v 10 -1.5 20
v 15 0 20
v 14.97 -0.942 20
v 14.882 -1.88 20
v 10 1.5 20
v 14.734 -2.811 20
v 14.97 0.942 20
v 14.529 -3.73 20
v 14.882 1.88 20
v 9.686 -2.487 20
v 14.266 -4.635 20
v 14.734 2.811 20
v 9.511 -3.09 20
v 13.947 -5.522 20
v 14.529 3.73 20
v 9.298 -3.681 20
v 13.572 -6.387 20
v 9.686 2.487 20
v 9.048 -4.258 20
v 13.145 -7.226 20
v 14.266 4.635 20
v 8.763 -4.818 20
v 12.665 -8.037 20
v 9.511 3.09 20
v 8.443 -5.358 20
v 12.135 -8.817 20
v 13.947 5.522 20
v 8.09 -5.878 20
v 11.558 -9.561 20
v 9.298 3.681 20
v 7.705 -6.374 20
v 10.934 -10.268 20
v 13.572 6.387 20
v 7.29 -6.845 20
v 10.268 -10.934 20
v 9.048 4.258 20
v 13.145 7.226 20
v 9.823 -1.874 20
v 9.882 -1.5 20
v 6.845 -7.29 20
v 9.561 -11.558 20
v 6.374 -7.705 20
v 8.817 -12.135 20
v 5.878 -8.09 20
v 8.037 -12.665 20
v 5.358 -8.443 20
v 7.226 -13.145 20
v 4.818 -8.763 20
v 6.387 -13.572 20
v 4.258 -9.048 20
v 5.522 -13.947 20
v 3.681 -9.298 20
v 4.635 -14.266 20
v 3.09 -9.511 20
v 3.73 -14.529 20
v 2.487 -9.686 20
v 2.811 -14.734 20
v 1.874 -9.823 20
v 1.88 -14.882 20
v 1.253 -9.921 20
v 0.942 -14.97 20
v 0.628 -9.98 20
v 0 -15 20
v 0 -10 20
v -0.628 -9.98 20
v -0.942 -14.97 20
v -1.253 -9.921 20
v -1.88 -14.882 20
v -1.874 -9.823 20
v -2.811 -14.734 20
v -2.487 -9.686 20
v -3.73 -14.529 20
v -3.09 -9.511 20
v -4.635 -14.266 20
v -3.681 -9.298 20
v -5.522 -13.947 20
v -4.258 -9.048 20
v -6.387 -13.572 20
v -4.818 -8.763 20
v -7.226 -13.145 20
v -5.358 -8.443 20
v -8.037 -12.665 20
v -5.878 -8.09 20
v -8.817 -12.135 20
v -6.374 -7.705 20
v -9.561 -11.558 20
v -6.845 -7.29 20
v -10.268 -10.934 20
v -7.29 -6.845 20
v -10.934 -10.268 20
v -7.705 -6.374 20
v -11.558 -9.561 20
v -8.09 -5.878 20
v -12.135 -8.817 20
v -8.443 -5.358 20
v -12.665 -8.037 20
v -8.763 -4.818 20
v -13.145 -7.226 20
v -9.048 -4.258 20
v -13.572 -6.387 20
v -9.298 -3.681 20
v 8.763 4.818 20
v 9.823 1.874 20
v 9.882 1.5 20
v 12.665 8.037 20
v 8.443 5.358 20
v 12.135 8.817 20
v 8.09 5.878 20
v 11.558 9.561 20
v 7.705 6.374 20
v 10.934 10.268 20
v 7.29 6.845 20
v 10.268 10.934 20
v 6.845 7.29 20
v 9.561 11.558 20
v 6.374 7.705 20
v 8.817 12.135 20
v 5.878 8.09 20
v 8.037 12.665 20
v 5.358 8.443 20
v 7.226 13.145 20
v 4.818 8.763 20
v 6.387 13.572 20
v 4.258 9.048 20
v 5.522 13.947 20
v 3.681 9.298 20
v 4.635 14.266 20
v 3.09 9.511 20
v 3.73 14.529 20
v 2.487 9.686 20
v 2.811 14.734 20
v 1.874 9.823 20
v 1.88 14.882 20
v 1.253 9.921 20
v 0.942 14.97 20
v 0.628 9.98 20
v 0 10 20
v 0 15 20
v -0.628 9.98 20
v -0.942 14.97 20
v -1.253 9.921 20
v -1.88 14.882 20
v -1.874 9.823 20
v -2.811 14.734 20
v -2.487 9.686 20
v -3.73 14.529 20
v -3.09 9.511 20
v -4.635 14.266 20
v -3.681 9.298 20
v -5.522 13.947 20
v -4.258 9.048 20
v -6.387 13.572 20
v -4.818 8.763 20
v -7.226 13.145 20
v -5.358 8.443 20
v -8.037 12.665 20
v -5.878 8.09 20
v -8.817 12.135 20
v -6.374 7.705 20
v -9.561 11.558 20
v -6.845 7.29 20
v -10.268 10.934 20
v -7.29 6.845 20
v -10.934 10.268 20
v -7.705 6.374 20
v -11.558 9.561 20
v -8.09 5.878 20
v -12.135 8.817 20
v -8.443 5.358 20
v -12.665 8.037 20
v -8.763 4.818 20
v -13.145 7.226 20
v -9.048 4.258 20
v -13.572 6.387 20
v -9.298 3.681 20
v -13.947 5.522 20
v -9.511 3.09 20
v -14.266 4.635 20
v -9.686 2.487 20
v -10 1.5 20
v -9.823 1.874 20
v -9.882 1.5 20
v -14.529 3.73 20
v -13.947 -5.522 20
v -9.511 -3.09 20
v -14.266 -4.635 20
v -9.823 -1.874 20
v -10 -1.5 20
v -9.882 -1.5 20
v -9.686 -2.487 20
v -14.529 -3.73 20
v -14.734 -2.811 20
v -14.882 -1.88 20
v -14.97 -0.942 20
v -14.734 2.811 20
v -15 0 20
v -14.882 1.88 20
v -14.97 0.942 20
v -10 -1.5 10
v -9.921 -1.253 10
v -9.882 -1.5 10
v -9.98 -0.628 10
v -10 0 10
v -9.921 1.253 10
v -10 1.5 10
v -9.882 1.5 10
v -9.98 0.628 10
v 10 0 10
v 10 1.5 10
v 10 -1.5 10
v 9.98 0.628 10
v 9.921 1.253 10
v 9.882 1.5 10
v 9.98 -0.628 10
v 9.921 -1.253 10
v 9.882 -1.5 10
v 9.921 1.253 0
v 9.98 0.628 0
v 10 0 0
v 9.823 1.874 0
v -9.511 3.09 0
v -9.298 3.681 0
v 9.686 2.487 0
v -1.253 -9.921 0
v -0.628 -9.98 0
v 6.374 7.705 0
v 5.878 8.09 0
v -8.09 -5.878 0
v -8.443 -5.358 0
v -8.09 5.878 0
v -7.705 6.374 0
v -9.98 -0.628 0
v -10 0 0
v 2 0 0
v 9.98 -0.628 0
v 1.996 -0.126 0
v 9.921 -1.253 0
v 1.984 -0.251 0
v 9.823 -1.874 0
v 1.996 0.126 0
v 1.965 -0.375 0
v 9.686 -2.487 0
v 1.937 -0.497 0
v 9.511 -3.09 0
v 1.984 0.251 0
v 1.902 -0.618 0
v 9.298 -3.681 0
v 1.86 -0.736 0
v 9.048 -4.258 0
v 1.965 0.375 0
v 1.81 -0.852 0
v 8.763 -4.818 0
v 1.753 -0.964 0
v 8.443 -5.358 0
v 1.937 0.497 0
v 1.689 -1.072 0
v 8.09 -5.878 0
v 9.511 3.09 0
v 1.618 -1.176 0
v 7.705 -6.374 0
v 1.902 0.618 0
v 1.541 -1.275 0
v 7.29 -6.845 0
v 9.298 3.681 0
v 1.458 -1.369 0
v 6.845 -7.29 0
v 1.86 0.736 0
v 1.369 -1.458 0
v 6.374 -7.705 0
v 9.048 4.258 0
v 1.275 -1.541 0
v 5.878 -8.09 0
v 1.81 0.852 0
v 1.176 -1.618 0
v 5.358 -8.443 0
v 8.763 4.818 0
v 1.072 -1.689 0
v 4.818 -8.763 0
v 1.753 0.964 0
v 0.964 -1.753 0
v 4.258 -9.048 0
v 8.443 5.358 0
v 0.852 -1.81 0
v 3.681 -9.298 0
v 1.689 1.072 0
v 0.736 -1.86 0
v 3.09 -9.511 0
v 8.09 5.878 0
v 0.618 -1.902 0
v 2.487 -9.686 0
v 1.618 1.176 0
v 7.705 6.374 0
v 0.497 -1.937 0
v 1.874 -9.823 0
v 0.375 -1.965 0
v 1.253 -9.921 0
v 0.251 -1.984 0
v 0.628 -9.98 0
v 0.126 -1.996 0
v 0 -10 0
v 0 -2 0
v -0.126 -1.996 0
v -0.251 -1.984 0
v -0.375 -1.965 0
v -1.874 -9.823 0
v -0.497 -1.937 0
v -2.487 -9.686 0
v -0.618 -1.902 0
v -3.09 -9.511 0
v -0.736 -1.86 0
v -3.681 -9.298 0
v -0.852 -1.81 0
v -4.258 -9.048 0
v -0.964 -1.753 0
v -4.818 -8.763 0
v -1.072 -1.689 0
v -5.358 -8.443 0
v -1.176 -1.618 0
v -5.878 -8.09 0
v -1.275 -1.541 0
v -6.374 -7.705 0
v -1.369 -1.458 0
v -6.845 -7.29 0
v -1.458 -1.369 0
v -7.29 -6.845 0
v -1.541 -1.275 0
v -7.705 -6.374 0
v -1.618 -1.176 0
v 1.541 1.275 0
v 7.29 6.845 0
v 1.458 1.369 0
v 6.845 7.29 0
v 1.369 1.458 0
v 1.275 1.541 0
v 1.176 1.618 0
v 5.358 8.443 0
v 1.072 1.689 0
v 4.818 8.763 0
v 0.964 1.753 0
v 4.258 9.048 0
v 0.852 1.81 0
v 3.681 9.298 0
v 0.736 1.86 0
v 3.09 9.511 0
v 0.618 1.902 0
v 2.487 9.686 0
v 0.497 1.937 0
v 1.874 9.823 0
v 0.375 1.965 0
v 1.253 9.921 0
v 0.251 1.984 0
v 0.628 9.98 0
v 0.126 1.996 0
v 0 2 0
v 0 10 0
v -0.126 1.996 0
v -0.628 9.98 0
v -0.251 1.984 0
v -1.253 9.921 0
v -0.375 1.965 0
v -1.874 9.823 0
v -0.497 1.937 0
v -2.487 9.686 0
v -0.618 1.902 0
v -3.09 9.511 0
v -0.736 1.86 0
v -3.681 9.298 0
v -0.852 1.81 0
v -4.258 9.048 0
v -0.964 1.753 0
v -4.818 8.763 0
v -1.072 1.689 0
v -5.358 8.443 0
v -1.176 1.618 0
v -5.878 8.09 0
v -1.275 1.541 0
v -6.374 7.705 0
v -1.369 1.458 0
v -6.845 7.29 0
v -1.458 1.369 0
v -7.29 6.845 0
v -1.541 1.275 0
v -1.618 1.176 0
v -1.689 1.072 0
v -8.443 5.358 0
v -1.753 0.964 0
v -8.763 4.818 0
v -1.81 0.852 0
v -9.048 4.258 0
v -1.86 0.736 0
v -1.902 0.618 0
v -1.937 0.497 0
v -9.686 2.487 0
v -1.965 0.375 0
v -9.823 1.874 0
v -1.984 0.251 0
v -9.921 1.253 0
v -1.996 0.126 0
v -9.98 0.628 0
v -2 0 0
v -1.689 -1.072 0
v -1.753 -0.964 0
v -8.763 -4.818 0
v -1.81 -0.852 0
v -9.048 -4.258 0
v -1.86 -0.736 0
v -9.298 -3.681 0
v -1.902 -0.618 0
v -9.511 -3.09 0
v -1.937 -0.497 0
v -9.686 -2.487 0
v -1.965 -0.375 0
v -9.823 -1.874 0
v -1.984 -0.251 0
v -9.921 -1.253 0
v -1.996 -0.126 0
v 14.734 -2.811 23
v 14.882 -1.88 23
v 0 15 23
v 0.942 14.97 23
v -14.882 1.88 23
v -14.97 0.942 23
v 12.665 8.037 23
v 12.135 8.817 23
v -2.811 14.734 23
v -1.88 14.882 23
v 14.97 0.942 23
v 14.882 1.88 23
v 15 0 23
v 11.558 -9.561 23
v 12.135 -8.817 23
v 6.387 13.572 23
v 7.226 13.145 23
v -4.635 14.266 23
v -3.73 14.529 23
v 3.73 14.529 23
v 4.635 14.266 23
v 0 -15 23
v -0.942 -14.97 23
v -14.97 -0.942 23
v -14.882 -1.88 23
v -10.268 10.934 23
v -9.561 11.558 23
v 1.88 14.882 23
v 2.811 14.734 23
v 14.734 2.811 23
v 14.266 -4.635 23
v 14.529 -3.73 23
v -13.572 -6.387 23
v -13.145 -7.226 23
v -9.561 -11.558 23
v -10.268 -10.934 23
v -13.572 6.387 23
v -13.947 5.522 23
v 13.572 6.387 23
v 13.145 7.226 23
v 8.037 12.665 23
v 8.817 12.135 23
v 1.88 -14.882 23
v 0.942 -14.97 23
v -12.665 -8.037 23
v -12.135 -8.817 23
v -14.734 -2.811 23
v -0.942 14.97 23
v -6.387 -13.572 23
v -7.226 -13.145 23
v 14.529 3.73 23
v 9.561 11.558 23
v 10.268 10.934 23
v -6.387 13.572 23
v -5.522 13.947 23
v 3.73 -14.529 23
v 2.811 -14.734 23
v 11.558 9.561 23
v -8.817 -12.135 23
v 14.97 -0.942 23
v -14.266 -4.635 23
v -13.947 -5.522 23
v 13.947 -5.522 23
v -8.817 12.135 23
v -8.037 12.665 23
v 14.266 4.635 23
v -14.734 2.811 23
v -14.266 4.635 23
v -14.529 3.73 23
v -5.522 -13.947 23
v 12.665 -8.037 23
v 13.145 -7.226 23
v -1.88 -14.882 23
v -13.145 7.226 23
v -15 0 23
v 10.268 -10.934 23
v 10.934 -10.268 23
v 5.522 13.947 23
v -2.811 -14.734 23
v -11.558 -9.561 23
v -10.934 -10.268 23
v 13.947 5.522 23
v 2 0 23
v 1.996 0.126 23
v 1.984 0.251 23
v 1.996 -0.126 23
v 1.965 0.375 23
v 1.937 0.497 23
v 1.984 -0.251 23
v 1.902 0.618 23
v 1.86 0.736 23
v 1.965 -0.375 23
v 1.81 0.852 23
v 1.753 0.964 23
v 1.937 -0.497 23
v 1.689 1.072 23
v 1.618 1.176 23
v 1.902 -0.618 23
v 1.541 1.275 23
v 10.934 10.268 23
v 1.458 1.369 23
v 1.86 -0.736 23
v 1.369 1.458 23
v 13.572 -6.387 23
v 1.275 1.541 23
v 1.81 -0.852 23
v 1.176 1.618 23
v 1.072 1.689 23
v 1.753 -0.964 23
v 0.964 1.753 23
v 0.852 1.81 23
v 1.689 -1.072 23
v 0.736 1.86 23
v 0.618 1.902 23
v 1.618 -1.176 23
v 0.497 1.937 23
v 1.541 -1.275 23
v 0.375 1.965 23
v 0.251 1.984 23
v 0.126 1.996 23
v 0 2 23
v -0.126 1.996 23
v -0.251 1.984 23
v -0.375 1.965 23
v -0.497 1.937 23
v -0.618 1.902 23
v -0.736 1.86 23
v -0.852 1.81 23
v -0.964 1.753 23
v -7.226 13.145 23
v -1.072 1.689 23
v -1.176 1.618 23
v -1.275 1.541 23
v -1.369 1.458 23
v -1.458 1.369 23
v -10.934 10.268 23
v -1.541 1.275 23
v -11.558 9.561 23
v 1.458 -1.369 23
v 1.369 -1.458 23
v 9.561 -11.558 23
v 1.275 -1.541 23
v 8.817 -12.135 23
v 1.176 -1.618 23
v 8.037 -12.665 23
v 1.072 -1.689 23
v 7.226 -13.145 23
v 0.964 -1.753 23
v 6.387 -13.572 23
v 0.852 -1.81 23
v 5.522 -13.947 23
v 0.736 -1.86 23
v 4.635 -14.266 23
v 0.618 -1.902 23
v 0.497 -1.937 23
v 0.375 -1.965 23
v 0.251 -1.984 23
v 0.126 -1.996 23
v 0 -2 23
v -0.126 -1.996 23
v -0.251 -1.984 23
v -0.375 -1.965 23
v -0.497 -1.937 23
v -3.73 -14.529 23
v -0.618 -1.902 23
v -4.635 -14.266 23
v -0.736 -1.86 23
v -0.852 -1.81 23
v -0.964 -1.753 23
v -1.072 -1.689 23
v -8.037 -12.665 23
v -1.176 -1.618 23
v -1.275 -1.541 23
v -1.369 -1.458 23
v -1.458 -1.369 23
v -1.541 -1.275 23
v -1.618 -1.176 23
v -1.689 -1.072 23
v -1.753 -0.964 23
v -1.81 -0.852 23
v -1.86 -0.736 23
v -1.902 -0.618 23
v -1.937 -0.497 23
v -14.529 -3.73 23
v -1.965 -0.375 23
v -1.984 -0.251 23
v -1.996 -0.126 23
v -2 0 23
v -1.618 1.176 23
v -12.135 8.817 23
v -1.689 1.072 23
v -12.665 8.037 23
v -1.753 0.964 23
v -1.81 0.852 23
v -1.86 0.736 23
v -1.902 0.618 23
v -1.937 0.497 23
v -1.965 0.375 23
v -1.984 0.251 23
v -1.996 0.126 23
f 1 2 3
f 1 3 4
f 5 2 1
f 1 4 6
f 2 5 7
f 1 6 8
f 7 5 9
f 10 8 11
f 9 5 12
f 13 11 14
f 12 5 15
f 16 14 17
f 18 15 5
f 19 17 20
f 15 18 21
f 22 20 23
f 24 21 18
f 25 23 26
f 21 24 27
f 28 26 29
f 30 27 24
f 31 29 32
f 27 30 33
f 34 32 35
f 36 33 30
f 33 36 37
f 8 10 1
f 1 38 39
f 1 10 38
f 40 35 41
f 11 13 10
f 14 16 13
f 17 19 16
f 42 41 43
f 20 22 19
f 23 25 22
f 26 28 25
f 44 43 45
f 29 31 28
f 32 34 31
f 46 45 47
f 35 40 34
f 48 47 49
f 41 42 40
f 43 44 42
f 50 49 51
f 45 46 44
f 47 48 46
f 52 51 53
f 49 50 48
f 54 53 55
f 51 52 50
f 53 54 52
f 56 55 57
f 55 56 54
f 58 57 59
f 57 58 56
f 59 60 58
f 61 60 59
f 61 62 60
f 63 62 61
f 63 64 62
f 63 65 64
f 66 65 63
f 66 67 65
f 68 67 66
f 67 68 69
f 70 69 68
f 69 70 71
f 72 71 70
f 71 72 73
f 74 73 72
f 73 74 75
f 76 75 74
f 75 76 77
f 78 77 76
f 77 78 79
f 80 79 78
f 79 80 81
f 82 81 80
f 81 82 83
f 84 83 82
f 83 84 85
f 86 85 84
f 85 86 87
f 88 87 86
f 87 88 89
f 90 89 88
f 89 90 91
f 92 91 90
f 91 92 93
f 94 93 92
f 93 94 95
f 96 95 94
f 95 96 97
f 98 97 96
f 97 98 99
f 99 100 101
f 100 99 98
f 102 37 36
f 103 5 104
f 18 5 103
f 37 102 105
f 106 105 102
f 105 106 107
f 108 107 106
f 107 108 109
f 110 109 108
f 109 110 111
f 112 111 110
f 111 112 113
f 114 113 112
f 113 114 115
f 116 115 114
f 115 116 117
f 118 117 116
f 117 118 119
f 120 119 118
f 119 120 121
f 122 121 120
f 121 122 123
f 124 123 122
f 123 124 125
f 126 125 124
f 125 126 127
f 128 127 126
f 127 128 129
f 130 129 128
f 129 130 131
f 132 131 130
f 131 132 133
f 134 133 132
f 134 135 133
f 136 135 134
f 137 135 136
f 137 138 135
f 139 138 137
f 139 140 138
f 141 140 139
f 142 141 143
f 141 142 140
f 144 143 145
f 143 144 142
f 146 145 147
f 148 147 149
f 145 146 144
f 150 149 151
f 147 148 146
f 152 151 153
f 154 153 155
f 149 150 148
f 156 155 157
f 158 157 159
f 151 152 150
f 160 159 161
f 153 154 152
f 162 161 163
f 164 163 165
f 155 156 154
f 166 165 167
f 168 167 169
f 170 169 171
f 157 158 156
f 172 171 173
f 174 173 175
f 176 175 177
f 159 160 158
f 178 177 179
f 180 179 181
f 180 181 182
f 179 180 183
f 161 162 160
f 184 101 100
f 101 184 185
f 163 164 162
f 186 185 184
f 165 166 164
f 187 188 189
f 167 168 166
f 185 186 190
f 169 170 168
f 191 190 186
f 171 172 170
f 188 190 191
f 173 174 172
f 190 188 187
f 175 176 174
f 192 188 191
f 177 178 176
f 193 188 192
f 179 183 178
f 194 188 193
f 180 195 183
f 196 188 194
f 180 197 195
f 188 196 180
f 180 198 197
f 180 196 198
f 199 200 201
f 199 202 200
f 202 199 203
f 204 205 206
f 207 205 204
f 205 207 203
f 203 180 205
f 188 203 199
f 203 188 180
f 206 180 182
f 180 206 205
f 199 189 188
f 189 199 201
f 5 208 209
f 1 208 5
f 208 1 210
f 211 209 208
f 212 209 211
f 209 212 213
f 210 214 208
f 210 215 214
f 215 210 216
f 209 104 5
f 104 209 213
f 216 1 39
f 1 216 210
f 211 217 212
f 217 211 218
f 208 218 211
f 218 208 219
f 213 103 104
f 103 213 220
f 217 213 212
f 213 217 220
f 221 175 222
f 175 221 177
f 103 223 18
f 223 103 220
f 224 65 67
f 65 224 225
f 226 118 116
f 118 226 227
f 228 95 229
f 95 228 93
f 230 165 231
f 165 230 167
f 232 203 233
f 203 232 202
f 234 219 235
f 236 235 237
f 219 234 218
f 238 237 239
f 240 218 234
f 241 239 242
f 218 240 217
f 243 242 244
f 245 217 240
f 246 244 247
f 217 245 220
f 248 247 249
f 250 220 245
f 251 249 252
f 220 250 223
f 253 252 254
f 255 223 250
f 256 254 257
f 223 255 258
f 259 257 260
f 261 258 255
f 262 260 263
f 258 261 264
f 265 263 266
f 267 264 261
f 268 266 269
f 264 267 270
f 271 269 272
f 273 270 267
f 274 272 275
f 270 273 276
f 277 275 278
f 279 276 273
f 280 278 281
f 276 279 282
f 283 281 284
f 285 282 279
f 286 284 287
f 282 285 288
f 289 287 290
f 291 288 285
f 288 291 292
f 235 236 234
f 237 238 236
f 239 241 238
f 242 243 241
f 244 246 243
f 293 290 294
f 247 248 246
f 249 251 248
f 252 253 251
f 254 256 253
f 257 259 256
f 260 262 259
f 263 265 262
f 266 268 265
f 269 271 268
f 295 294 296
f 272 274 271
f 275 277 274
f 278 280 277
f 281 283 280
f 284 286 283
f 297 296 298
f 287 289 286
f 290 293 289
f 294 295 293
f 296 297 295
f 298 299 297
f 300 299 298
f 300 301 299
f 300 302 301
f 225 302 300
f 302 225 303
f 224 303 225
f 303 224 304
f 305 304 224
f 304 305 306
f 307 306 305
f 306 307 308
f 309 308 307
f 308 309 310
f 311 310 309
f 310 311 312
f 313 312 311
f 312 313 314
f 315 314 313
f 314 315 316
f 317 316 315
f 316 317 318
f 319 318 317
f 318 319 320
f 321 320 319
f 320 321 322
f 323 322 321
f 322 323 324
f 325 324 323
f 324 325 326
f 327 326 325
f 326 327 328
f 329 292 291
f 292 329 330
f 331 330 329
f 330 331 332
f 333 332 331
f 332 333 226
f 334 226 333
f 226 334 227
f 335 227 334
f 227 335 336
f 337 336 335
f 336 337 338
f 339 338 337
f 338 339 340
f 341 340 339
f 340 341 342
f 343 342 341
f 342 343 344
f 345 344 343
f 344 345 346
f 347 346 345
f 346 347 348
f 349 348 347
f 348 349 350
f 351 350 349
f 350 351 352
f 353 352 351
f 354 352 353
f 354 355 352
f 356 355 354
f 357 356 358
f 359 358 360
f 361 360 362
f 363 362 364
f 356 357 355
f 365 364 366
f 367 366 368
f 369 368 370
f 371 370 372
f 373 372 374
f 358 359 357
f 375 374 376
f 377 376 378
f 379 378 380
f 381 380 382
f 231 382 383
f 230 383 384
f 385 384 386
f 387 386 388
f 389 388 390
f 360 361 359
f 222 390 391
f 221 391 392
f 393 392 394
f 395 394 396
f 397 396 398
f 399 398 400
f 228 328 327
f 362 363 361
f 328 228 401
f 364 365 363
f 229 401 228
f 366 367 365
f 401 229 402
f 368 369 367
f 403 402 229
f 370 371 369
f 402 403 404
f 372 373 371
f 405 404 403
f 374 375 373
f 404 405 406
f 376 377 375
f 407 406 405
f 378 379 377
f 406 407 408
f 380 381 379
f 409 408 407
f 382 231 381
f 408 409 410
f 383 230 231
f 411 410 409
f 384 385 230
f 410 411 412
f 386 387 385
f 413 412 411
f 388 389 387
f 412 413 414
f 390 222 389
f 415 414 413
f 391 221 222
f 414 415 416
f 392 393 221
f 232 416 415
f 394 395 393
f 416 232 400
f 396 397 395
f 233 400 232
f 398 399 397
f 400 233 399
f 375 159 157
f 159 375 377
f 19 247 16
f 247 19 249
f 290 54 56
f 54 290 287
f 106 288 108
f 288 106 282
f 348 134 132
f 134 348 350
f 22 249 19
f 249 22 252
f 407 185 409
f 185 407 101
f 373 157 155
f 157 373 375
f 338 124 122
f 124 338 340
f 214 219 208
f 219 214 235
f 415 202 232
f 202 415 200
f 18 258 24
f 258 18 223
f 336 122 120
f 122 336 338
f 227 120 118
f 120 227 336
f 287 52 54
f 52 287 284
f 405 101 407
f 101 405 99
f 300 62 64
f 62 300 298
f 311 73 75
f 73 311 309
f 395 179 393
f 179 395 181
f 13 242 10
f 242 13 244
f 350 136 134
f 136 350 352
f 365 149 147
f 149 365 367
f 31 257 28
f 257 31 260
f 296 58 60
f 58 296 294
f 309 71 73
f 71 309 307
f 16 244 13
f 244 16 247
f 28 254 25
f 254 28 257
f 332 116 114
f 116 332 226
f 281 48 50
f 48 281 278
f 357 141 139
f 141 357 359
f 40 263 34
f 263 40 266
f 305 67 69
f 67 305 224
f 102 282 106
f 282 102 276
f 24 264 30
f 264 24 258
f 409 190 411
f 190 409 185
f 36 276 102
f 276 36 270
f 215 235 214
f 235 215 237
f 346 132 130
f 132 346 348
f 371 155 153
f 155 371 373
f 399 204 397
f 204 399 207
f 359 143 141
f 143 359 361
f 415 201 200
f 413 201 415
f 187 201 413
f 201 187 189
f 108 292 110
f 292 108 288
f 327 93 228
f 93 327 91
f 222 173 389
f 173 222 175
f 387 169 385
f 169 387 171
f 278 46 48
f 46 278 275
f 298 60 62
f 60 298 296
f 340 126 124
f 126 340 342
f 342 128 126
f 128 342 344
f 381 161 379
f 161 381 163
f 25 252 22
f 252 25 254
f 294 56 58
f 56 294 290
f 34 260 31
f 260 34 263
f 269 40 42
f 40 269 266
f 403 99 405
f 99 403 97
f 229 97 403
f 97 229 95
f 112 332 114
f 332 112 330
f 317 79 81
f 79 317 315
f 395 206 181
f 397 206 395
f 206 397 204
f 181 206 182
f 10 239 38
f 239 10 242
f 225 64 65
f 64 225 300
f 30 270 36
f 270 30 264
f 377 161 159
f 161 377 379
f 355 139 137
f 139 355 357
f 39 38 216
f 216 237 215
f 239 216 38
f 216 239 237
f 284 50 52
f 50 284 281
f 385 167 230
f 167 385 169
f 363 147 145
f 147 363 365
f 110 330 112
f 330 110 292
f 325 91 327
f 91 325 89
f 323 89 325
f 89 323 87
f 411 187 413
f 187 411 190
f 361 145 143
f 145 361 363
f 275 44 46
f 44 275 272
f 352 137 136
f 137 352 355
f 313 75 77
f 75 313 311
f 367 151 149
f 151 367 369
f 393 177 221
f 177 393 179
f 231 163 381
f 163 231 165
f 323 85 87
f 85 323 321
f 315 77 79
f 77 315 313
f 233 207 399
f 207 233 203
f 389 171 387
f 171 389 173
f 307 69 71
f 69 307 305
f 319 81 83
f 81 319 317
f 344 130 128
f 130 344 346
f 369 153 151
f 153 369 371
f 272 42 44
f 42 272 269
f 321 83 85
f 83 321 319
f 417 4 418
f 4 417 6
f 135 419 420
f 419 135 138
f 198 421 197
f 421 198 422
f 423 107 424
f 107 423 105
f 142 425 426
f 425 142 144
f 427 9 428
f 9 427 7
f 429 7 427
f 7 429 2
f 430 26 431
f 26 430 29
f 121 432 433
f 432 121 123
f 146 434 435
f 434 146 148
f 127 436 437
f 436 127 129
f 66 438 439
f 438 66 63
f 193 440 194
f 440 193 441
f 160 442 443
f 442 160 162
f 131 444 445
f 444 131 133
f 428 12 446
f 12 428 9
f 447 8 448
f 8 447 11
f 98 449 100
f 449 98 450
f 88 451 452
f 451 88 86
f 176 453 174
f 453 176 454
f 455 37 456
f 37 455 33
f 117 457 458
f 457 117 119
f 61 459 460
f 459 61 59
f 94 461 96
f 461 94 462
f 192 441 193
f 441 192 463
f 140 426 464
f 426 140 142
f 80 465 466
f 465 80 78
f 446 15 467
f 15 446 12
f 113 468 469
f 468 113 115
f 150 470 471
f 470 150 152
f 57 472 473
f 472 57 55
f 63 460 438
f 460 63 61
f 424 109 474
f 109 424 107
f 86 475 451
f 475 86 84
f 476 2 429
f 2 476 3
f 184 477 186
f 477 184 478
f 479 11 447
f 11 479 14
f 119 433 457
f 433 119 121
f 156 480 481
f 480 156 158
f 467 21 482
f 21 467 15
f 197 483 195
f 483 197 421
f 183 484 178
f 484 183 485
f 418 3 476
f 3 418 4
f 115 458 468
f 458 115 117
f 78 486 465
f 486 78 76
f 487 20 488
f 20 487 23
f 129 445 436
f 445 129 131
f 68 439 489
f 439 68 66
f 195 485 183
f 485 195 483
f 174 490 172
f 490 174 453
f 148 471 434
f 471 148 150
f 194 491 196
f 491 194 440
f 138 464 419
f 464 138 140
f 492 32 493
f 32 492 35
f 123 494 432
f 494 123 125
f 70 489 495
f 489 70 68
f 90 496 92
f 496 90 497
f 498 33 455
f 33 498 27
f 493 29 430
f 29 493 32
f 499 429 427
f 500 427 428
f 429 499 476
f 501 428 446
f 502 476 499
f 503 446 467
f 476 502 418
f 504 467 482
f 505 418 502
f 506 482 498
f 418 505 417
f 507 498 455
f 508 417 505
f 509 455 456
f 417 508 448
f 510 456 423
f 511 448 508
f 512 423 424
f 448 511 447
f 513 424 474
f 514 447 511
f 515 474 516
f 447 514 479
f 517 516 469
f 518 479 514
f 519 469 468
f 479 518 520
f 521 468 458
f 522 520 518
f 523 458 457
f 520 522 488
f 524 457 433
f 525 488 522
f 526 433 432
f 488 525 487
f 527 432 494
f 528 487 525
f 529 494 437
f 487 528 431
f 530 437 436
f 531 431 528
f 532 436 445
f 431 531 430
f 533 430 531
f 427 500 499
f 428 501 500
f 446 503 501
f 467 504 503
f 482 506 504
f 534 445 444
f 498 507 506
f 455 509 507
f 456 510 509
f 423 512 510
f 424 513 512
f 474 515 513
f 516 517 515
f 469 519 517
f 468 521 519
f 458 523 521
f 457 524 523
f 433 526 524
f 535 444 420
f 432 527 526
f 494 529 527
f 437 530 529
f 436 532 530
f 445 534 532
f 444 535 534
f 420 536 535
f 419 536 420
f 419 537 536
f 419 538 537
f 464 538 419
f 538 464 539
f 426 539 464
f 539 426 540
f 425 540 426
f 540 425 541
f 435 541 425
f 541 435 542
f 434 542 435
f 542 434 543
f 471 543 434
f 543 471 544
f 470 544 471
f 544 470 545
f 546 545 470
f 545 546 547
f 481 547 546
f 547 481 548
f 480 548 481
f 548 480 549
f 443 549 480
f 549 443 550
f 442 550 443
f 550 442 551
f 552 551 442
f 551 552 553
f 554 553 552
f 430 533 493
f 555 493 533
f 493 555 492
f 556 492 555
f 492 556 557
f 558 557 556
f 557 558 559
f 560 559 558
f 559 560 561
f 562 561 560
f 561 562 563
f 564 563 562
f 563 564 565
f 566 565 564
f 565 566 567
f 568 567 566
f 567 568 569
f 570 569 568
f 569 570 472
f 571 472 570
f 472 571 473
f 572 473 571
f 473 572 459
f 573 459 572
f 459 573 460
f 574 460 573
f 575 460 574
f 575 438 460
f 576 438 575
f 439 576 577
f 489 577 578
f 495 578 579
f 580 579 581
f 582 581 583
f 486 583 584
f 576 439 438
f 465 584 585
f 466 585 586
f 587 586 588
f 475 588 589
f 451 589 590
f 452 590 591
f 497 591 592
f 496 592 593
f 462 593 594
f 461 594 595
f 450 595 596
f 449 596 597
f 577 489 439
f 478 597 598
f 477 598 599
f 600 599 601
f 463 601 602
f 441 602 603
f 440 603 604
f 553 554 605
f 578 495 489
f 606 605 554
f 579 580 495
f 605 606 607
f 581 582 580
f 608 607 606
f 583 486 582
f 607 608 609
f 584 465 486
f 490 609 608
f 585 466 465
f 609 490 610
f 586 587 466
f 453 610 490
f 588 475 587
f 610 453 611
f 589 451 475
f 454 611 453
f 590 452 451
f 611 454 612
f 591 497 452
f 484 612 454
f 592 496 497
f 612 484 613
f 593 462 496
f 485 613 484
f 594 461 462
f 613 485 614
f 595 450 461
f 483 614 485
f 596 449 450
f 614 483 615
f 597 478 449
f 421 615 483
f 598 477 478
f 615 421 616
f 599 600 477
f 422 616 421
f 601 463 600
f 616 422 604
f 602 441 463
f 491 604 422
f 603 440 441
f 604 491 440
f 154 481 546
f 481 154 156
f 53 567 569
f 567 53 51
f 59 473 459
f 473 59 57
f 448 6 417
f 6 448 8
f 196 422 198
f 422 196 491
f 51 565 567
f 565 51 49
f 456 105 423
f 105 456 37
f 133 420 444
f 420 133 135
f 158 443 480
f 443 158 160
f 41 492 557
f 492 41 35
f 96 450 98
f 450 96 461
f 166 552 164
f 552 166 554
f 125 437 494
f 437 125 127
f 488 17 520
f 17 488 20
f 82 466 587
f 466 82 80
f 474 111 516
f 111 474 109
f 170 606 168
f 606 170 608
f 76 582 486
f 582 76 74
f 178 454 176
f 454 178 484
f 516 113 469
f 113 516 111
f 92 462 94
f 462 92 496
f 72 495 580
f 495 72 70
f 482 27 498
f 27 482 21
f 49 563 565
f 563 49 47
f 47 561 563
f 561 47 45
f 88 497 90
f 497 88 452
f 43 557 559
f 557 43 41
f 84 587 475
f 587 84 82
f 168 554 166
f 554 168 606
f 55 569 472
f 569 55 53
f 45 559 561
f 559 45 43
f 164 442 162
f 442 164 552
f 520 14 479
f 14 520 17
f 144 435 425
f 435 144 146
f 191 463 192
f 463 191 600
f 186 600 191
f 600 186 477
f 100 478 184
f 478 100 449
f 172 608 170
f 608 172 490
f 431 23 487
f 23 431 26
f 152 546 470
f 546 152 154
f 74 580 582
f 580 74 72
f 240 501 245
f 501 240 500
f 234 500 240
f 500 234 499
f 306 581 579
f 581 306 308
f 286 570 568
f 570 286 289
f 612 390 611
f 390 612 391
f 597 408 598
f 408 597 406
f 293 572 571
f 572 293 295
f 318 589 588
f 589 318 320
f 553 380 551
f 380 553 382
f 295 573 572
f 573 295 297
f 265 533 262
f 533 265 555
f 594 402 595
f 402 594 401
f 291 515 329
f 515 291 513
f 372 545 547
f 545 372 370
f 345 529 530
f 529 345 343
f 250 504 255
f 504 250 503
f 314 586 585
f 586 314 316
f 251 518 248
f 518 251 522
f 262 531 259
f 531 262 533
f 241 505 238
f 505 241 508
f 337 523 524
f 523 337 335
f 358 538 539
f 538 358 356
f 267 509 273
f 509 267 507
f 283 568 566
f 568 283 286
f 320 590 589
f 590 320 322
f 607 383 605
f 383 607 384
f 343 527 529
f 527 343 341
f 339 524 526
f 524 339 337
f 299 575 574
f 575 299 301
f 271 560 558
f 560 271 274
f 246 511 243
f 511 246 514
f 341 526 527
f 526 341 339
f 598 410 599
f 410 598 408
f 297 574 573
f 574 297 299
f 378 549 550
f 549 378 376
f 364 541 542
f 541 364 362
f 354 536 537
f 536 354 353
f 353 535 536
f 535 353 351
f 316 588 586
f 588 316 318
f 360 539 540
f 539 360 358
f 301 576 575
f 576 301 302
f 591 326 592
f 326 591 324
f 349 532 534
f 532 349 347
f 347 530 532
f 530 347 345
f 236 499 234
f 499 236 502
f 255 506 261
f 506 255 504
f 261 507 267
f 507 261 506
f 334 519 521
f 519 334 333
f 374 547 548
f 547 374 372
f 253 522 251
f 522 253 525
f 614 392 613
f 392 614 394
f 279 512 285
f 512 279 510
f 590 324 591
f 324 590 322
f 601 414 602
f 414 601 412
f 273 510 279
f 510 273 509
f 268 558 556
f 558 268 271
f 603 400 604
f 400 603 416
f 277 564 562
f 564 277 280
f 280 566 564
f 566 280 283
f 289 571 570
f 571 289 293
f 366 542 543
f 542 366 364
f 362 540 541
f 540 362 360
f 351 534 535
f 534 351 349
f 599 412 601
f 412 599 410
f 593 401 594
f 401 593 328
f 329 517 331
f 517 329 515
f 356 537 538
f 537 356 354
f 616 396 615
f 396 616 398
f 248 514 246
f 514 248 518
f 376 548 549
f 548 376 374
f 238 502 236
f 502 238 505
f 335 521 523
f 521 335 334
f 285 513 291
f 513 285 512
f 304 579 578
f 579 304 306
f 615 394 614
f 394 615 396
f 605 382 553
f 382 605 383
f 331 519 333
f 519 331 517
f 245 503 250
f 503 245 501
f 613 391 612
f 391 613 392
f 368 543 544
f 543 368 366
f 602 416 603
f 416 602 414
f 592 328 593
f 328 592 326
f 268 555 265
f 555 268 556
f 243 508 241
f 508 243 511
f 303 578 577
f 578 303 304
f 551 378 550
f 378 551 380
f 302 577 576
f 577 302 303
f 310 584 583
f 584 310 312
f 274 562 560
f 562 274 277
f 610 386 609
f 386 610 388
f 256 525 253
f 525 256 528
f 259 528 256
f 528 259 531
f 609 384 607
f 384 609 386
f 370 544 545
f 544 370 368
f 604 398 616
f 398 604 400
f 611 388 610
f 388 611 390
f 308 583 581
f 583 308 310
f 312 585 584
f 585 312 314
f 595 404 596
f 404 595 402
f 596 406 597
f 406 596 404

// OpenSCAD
// Parameters
shaft_radius = 10;
shaft_height = 20;
flange_radius = 15;
flange_thickness = 3;
tab_width = 5;
tab_thickness = 3;
tab_height = 10;
center_hole_radius = 2;

// Main shaft body
module shaft_body() {
    cylinder(h = shaft_height, r = shaft_radius, $fn=100);
}

// Flange
module flange() {
    translate([0, 0, shaft_height])
        cylinder(h = flange_thickness, r = flange_radius, $fn=100);
}

// Rectangular tabs
module tabs() {
    translate([-shaft_radius, -tab_thickness/2, shaft_height - tab_height])
        cube([tab_width, tab_thickness, tab_height]);
    translate([shaft_radius - tab_width, -tab_thickness/2, shaft_height - tab_height])
        cube([tab_width, tab_thickness, tab_height]);
}

// Center hole
module center_hole() {
    translate([0, 0, -1])
        cylinder(h = shaft_height + flange_thickness + 2, r = center_hole_radius, $fn=100);
}

// Final input shaft assembly
difference() {
    union() {
        shaft_body();
        flange();
        tabs();
    }
    center_hole();
}
